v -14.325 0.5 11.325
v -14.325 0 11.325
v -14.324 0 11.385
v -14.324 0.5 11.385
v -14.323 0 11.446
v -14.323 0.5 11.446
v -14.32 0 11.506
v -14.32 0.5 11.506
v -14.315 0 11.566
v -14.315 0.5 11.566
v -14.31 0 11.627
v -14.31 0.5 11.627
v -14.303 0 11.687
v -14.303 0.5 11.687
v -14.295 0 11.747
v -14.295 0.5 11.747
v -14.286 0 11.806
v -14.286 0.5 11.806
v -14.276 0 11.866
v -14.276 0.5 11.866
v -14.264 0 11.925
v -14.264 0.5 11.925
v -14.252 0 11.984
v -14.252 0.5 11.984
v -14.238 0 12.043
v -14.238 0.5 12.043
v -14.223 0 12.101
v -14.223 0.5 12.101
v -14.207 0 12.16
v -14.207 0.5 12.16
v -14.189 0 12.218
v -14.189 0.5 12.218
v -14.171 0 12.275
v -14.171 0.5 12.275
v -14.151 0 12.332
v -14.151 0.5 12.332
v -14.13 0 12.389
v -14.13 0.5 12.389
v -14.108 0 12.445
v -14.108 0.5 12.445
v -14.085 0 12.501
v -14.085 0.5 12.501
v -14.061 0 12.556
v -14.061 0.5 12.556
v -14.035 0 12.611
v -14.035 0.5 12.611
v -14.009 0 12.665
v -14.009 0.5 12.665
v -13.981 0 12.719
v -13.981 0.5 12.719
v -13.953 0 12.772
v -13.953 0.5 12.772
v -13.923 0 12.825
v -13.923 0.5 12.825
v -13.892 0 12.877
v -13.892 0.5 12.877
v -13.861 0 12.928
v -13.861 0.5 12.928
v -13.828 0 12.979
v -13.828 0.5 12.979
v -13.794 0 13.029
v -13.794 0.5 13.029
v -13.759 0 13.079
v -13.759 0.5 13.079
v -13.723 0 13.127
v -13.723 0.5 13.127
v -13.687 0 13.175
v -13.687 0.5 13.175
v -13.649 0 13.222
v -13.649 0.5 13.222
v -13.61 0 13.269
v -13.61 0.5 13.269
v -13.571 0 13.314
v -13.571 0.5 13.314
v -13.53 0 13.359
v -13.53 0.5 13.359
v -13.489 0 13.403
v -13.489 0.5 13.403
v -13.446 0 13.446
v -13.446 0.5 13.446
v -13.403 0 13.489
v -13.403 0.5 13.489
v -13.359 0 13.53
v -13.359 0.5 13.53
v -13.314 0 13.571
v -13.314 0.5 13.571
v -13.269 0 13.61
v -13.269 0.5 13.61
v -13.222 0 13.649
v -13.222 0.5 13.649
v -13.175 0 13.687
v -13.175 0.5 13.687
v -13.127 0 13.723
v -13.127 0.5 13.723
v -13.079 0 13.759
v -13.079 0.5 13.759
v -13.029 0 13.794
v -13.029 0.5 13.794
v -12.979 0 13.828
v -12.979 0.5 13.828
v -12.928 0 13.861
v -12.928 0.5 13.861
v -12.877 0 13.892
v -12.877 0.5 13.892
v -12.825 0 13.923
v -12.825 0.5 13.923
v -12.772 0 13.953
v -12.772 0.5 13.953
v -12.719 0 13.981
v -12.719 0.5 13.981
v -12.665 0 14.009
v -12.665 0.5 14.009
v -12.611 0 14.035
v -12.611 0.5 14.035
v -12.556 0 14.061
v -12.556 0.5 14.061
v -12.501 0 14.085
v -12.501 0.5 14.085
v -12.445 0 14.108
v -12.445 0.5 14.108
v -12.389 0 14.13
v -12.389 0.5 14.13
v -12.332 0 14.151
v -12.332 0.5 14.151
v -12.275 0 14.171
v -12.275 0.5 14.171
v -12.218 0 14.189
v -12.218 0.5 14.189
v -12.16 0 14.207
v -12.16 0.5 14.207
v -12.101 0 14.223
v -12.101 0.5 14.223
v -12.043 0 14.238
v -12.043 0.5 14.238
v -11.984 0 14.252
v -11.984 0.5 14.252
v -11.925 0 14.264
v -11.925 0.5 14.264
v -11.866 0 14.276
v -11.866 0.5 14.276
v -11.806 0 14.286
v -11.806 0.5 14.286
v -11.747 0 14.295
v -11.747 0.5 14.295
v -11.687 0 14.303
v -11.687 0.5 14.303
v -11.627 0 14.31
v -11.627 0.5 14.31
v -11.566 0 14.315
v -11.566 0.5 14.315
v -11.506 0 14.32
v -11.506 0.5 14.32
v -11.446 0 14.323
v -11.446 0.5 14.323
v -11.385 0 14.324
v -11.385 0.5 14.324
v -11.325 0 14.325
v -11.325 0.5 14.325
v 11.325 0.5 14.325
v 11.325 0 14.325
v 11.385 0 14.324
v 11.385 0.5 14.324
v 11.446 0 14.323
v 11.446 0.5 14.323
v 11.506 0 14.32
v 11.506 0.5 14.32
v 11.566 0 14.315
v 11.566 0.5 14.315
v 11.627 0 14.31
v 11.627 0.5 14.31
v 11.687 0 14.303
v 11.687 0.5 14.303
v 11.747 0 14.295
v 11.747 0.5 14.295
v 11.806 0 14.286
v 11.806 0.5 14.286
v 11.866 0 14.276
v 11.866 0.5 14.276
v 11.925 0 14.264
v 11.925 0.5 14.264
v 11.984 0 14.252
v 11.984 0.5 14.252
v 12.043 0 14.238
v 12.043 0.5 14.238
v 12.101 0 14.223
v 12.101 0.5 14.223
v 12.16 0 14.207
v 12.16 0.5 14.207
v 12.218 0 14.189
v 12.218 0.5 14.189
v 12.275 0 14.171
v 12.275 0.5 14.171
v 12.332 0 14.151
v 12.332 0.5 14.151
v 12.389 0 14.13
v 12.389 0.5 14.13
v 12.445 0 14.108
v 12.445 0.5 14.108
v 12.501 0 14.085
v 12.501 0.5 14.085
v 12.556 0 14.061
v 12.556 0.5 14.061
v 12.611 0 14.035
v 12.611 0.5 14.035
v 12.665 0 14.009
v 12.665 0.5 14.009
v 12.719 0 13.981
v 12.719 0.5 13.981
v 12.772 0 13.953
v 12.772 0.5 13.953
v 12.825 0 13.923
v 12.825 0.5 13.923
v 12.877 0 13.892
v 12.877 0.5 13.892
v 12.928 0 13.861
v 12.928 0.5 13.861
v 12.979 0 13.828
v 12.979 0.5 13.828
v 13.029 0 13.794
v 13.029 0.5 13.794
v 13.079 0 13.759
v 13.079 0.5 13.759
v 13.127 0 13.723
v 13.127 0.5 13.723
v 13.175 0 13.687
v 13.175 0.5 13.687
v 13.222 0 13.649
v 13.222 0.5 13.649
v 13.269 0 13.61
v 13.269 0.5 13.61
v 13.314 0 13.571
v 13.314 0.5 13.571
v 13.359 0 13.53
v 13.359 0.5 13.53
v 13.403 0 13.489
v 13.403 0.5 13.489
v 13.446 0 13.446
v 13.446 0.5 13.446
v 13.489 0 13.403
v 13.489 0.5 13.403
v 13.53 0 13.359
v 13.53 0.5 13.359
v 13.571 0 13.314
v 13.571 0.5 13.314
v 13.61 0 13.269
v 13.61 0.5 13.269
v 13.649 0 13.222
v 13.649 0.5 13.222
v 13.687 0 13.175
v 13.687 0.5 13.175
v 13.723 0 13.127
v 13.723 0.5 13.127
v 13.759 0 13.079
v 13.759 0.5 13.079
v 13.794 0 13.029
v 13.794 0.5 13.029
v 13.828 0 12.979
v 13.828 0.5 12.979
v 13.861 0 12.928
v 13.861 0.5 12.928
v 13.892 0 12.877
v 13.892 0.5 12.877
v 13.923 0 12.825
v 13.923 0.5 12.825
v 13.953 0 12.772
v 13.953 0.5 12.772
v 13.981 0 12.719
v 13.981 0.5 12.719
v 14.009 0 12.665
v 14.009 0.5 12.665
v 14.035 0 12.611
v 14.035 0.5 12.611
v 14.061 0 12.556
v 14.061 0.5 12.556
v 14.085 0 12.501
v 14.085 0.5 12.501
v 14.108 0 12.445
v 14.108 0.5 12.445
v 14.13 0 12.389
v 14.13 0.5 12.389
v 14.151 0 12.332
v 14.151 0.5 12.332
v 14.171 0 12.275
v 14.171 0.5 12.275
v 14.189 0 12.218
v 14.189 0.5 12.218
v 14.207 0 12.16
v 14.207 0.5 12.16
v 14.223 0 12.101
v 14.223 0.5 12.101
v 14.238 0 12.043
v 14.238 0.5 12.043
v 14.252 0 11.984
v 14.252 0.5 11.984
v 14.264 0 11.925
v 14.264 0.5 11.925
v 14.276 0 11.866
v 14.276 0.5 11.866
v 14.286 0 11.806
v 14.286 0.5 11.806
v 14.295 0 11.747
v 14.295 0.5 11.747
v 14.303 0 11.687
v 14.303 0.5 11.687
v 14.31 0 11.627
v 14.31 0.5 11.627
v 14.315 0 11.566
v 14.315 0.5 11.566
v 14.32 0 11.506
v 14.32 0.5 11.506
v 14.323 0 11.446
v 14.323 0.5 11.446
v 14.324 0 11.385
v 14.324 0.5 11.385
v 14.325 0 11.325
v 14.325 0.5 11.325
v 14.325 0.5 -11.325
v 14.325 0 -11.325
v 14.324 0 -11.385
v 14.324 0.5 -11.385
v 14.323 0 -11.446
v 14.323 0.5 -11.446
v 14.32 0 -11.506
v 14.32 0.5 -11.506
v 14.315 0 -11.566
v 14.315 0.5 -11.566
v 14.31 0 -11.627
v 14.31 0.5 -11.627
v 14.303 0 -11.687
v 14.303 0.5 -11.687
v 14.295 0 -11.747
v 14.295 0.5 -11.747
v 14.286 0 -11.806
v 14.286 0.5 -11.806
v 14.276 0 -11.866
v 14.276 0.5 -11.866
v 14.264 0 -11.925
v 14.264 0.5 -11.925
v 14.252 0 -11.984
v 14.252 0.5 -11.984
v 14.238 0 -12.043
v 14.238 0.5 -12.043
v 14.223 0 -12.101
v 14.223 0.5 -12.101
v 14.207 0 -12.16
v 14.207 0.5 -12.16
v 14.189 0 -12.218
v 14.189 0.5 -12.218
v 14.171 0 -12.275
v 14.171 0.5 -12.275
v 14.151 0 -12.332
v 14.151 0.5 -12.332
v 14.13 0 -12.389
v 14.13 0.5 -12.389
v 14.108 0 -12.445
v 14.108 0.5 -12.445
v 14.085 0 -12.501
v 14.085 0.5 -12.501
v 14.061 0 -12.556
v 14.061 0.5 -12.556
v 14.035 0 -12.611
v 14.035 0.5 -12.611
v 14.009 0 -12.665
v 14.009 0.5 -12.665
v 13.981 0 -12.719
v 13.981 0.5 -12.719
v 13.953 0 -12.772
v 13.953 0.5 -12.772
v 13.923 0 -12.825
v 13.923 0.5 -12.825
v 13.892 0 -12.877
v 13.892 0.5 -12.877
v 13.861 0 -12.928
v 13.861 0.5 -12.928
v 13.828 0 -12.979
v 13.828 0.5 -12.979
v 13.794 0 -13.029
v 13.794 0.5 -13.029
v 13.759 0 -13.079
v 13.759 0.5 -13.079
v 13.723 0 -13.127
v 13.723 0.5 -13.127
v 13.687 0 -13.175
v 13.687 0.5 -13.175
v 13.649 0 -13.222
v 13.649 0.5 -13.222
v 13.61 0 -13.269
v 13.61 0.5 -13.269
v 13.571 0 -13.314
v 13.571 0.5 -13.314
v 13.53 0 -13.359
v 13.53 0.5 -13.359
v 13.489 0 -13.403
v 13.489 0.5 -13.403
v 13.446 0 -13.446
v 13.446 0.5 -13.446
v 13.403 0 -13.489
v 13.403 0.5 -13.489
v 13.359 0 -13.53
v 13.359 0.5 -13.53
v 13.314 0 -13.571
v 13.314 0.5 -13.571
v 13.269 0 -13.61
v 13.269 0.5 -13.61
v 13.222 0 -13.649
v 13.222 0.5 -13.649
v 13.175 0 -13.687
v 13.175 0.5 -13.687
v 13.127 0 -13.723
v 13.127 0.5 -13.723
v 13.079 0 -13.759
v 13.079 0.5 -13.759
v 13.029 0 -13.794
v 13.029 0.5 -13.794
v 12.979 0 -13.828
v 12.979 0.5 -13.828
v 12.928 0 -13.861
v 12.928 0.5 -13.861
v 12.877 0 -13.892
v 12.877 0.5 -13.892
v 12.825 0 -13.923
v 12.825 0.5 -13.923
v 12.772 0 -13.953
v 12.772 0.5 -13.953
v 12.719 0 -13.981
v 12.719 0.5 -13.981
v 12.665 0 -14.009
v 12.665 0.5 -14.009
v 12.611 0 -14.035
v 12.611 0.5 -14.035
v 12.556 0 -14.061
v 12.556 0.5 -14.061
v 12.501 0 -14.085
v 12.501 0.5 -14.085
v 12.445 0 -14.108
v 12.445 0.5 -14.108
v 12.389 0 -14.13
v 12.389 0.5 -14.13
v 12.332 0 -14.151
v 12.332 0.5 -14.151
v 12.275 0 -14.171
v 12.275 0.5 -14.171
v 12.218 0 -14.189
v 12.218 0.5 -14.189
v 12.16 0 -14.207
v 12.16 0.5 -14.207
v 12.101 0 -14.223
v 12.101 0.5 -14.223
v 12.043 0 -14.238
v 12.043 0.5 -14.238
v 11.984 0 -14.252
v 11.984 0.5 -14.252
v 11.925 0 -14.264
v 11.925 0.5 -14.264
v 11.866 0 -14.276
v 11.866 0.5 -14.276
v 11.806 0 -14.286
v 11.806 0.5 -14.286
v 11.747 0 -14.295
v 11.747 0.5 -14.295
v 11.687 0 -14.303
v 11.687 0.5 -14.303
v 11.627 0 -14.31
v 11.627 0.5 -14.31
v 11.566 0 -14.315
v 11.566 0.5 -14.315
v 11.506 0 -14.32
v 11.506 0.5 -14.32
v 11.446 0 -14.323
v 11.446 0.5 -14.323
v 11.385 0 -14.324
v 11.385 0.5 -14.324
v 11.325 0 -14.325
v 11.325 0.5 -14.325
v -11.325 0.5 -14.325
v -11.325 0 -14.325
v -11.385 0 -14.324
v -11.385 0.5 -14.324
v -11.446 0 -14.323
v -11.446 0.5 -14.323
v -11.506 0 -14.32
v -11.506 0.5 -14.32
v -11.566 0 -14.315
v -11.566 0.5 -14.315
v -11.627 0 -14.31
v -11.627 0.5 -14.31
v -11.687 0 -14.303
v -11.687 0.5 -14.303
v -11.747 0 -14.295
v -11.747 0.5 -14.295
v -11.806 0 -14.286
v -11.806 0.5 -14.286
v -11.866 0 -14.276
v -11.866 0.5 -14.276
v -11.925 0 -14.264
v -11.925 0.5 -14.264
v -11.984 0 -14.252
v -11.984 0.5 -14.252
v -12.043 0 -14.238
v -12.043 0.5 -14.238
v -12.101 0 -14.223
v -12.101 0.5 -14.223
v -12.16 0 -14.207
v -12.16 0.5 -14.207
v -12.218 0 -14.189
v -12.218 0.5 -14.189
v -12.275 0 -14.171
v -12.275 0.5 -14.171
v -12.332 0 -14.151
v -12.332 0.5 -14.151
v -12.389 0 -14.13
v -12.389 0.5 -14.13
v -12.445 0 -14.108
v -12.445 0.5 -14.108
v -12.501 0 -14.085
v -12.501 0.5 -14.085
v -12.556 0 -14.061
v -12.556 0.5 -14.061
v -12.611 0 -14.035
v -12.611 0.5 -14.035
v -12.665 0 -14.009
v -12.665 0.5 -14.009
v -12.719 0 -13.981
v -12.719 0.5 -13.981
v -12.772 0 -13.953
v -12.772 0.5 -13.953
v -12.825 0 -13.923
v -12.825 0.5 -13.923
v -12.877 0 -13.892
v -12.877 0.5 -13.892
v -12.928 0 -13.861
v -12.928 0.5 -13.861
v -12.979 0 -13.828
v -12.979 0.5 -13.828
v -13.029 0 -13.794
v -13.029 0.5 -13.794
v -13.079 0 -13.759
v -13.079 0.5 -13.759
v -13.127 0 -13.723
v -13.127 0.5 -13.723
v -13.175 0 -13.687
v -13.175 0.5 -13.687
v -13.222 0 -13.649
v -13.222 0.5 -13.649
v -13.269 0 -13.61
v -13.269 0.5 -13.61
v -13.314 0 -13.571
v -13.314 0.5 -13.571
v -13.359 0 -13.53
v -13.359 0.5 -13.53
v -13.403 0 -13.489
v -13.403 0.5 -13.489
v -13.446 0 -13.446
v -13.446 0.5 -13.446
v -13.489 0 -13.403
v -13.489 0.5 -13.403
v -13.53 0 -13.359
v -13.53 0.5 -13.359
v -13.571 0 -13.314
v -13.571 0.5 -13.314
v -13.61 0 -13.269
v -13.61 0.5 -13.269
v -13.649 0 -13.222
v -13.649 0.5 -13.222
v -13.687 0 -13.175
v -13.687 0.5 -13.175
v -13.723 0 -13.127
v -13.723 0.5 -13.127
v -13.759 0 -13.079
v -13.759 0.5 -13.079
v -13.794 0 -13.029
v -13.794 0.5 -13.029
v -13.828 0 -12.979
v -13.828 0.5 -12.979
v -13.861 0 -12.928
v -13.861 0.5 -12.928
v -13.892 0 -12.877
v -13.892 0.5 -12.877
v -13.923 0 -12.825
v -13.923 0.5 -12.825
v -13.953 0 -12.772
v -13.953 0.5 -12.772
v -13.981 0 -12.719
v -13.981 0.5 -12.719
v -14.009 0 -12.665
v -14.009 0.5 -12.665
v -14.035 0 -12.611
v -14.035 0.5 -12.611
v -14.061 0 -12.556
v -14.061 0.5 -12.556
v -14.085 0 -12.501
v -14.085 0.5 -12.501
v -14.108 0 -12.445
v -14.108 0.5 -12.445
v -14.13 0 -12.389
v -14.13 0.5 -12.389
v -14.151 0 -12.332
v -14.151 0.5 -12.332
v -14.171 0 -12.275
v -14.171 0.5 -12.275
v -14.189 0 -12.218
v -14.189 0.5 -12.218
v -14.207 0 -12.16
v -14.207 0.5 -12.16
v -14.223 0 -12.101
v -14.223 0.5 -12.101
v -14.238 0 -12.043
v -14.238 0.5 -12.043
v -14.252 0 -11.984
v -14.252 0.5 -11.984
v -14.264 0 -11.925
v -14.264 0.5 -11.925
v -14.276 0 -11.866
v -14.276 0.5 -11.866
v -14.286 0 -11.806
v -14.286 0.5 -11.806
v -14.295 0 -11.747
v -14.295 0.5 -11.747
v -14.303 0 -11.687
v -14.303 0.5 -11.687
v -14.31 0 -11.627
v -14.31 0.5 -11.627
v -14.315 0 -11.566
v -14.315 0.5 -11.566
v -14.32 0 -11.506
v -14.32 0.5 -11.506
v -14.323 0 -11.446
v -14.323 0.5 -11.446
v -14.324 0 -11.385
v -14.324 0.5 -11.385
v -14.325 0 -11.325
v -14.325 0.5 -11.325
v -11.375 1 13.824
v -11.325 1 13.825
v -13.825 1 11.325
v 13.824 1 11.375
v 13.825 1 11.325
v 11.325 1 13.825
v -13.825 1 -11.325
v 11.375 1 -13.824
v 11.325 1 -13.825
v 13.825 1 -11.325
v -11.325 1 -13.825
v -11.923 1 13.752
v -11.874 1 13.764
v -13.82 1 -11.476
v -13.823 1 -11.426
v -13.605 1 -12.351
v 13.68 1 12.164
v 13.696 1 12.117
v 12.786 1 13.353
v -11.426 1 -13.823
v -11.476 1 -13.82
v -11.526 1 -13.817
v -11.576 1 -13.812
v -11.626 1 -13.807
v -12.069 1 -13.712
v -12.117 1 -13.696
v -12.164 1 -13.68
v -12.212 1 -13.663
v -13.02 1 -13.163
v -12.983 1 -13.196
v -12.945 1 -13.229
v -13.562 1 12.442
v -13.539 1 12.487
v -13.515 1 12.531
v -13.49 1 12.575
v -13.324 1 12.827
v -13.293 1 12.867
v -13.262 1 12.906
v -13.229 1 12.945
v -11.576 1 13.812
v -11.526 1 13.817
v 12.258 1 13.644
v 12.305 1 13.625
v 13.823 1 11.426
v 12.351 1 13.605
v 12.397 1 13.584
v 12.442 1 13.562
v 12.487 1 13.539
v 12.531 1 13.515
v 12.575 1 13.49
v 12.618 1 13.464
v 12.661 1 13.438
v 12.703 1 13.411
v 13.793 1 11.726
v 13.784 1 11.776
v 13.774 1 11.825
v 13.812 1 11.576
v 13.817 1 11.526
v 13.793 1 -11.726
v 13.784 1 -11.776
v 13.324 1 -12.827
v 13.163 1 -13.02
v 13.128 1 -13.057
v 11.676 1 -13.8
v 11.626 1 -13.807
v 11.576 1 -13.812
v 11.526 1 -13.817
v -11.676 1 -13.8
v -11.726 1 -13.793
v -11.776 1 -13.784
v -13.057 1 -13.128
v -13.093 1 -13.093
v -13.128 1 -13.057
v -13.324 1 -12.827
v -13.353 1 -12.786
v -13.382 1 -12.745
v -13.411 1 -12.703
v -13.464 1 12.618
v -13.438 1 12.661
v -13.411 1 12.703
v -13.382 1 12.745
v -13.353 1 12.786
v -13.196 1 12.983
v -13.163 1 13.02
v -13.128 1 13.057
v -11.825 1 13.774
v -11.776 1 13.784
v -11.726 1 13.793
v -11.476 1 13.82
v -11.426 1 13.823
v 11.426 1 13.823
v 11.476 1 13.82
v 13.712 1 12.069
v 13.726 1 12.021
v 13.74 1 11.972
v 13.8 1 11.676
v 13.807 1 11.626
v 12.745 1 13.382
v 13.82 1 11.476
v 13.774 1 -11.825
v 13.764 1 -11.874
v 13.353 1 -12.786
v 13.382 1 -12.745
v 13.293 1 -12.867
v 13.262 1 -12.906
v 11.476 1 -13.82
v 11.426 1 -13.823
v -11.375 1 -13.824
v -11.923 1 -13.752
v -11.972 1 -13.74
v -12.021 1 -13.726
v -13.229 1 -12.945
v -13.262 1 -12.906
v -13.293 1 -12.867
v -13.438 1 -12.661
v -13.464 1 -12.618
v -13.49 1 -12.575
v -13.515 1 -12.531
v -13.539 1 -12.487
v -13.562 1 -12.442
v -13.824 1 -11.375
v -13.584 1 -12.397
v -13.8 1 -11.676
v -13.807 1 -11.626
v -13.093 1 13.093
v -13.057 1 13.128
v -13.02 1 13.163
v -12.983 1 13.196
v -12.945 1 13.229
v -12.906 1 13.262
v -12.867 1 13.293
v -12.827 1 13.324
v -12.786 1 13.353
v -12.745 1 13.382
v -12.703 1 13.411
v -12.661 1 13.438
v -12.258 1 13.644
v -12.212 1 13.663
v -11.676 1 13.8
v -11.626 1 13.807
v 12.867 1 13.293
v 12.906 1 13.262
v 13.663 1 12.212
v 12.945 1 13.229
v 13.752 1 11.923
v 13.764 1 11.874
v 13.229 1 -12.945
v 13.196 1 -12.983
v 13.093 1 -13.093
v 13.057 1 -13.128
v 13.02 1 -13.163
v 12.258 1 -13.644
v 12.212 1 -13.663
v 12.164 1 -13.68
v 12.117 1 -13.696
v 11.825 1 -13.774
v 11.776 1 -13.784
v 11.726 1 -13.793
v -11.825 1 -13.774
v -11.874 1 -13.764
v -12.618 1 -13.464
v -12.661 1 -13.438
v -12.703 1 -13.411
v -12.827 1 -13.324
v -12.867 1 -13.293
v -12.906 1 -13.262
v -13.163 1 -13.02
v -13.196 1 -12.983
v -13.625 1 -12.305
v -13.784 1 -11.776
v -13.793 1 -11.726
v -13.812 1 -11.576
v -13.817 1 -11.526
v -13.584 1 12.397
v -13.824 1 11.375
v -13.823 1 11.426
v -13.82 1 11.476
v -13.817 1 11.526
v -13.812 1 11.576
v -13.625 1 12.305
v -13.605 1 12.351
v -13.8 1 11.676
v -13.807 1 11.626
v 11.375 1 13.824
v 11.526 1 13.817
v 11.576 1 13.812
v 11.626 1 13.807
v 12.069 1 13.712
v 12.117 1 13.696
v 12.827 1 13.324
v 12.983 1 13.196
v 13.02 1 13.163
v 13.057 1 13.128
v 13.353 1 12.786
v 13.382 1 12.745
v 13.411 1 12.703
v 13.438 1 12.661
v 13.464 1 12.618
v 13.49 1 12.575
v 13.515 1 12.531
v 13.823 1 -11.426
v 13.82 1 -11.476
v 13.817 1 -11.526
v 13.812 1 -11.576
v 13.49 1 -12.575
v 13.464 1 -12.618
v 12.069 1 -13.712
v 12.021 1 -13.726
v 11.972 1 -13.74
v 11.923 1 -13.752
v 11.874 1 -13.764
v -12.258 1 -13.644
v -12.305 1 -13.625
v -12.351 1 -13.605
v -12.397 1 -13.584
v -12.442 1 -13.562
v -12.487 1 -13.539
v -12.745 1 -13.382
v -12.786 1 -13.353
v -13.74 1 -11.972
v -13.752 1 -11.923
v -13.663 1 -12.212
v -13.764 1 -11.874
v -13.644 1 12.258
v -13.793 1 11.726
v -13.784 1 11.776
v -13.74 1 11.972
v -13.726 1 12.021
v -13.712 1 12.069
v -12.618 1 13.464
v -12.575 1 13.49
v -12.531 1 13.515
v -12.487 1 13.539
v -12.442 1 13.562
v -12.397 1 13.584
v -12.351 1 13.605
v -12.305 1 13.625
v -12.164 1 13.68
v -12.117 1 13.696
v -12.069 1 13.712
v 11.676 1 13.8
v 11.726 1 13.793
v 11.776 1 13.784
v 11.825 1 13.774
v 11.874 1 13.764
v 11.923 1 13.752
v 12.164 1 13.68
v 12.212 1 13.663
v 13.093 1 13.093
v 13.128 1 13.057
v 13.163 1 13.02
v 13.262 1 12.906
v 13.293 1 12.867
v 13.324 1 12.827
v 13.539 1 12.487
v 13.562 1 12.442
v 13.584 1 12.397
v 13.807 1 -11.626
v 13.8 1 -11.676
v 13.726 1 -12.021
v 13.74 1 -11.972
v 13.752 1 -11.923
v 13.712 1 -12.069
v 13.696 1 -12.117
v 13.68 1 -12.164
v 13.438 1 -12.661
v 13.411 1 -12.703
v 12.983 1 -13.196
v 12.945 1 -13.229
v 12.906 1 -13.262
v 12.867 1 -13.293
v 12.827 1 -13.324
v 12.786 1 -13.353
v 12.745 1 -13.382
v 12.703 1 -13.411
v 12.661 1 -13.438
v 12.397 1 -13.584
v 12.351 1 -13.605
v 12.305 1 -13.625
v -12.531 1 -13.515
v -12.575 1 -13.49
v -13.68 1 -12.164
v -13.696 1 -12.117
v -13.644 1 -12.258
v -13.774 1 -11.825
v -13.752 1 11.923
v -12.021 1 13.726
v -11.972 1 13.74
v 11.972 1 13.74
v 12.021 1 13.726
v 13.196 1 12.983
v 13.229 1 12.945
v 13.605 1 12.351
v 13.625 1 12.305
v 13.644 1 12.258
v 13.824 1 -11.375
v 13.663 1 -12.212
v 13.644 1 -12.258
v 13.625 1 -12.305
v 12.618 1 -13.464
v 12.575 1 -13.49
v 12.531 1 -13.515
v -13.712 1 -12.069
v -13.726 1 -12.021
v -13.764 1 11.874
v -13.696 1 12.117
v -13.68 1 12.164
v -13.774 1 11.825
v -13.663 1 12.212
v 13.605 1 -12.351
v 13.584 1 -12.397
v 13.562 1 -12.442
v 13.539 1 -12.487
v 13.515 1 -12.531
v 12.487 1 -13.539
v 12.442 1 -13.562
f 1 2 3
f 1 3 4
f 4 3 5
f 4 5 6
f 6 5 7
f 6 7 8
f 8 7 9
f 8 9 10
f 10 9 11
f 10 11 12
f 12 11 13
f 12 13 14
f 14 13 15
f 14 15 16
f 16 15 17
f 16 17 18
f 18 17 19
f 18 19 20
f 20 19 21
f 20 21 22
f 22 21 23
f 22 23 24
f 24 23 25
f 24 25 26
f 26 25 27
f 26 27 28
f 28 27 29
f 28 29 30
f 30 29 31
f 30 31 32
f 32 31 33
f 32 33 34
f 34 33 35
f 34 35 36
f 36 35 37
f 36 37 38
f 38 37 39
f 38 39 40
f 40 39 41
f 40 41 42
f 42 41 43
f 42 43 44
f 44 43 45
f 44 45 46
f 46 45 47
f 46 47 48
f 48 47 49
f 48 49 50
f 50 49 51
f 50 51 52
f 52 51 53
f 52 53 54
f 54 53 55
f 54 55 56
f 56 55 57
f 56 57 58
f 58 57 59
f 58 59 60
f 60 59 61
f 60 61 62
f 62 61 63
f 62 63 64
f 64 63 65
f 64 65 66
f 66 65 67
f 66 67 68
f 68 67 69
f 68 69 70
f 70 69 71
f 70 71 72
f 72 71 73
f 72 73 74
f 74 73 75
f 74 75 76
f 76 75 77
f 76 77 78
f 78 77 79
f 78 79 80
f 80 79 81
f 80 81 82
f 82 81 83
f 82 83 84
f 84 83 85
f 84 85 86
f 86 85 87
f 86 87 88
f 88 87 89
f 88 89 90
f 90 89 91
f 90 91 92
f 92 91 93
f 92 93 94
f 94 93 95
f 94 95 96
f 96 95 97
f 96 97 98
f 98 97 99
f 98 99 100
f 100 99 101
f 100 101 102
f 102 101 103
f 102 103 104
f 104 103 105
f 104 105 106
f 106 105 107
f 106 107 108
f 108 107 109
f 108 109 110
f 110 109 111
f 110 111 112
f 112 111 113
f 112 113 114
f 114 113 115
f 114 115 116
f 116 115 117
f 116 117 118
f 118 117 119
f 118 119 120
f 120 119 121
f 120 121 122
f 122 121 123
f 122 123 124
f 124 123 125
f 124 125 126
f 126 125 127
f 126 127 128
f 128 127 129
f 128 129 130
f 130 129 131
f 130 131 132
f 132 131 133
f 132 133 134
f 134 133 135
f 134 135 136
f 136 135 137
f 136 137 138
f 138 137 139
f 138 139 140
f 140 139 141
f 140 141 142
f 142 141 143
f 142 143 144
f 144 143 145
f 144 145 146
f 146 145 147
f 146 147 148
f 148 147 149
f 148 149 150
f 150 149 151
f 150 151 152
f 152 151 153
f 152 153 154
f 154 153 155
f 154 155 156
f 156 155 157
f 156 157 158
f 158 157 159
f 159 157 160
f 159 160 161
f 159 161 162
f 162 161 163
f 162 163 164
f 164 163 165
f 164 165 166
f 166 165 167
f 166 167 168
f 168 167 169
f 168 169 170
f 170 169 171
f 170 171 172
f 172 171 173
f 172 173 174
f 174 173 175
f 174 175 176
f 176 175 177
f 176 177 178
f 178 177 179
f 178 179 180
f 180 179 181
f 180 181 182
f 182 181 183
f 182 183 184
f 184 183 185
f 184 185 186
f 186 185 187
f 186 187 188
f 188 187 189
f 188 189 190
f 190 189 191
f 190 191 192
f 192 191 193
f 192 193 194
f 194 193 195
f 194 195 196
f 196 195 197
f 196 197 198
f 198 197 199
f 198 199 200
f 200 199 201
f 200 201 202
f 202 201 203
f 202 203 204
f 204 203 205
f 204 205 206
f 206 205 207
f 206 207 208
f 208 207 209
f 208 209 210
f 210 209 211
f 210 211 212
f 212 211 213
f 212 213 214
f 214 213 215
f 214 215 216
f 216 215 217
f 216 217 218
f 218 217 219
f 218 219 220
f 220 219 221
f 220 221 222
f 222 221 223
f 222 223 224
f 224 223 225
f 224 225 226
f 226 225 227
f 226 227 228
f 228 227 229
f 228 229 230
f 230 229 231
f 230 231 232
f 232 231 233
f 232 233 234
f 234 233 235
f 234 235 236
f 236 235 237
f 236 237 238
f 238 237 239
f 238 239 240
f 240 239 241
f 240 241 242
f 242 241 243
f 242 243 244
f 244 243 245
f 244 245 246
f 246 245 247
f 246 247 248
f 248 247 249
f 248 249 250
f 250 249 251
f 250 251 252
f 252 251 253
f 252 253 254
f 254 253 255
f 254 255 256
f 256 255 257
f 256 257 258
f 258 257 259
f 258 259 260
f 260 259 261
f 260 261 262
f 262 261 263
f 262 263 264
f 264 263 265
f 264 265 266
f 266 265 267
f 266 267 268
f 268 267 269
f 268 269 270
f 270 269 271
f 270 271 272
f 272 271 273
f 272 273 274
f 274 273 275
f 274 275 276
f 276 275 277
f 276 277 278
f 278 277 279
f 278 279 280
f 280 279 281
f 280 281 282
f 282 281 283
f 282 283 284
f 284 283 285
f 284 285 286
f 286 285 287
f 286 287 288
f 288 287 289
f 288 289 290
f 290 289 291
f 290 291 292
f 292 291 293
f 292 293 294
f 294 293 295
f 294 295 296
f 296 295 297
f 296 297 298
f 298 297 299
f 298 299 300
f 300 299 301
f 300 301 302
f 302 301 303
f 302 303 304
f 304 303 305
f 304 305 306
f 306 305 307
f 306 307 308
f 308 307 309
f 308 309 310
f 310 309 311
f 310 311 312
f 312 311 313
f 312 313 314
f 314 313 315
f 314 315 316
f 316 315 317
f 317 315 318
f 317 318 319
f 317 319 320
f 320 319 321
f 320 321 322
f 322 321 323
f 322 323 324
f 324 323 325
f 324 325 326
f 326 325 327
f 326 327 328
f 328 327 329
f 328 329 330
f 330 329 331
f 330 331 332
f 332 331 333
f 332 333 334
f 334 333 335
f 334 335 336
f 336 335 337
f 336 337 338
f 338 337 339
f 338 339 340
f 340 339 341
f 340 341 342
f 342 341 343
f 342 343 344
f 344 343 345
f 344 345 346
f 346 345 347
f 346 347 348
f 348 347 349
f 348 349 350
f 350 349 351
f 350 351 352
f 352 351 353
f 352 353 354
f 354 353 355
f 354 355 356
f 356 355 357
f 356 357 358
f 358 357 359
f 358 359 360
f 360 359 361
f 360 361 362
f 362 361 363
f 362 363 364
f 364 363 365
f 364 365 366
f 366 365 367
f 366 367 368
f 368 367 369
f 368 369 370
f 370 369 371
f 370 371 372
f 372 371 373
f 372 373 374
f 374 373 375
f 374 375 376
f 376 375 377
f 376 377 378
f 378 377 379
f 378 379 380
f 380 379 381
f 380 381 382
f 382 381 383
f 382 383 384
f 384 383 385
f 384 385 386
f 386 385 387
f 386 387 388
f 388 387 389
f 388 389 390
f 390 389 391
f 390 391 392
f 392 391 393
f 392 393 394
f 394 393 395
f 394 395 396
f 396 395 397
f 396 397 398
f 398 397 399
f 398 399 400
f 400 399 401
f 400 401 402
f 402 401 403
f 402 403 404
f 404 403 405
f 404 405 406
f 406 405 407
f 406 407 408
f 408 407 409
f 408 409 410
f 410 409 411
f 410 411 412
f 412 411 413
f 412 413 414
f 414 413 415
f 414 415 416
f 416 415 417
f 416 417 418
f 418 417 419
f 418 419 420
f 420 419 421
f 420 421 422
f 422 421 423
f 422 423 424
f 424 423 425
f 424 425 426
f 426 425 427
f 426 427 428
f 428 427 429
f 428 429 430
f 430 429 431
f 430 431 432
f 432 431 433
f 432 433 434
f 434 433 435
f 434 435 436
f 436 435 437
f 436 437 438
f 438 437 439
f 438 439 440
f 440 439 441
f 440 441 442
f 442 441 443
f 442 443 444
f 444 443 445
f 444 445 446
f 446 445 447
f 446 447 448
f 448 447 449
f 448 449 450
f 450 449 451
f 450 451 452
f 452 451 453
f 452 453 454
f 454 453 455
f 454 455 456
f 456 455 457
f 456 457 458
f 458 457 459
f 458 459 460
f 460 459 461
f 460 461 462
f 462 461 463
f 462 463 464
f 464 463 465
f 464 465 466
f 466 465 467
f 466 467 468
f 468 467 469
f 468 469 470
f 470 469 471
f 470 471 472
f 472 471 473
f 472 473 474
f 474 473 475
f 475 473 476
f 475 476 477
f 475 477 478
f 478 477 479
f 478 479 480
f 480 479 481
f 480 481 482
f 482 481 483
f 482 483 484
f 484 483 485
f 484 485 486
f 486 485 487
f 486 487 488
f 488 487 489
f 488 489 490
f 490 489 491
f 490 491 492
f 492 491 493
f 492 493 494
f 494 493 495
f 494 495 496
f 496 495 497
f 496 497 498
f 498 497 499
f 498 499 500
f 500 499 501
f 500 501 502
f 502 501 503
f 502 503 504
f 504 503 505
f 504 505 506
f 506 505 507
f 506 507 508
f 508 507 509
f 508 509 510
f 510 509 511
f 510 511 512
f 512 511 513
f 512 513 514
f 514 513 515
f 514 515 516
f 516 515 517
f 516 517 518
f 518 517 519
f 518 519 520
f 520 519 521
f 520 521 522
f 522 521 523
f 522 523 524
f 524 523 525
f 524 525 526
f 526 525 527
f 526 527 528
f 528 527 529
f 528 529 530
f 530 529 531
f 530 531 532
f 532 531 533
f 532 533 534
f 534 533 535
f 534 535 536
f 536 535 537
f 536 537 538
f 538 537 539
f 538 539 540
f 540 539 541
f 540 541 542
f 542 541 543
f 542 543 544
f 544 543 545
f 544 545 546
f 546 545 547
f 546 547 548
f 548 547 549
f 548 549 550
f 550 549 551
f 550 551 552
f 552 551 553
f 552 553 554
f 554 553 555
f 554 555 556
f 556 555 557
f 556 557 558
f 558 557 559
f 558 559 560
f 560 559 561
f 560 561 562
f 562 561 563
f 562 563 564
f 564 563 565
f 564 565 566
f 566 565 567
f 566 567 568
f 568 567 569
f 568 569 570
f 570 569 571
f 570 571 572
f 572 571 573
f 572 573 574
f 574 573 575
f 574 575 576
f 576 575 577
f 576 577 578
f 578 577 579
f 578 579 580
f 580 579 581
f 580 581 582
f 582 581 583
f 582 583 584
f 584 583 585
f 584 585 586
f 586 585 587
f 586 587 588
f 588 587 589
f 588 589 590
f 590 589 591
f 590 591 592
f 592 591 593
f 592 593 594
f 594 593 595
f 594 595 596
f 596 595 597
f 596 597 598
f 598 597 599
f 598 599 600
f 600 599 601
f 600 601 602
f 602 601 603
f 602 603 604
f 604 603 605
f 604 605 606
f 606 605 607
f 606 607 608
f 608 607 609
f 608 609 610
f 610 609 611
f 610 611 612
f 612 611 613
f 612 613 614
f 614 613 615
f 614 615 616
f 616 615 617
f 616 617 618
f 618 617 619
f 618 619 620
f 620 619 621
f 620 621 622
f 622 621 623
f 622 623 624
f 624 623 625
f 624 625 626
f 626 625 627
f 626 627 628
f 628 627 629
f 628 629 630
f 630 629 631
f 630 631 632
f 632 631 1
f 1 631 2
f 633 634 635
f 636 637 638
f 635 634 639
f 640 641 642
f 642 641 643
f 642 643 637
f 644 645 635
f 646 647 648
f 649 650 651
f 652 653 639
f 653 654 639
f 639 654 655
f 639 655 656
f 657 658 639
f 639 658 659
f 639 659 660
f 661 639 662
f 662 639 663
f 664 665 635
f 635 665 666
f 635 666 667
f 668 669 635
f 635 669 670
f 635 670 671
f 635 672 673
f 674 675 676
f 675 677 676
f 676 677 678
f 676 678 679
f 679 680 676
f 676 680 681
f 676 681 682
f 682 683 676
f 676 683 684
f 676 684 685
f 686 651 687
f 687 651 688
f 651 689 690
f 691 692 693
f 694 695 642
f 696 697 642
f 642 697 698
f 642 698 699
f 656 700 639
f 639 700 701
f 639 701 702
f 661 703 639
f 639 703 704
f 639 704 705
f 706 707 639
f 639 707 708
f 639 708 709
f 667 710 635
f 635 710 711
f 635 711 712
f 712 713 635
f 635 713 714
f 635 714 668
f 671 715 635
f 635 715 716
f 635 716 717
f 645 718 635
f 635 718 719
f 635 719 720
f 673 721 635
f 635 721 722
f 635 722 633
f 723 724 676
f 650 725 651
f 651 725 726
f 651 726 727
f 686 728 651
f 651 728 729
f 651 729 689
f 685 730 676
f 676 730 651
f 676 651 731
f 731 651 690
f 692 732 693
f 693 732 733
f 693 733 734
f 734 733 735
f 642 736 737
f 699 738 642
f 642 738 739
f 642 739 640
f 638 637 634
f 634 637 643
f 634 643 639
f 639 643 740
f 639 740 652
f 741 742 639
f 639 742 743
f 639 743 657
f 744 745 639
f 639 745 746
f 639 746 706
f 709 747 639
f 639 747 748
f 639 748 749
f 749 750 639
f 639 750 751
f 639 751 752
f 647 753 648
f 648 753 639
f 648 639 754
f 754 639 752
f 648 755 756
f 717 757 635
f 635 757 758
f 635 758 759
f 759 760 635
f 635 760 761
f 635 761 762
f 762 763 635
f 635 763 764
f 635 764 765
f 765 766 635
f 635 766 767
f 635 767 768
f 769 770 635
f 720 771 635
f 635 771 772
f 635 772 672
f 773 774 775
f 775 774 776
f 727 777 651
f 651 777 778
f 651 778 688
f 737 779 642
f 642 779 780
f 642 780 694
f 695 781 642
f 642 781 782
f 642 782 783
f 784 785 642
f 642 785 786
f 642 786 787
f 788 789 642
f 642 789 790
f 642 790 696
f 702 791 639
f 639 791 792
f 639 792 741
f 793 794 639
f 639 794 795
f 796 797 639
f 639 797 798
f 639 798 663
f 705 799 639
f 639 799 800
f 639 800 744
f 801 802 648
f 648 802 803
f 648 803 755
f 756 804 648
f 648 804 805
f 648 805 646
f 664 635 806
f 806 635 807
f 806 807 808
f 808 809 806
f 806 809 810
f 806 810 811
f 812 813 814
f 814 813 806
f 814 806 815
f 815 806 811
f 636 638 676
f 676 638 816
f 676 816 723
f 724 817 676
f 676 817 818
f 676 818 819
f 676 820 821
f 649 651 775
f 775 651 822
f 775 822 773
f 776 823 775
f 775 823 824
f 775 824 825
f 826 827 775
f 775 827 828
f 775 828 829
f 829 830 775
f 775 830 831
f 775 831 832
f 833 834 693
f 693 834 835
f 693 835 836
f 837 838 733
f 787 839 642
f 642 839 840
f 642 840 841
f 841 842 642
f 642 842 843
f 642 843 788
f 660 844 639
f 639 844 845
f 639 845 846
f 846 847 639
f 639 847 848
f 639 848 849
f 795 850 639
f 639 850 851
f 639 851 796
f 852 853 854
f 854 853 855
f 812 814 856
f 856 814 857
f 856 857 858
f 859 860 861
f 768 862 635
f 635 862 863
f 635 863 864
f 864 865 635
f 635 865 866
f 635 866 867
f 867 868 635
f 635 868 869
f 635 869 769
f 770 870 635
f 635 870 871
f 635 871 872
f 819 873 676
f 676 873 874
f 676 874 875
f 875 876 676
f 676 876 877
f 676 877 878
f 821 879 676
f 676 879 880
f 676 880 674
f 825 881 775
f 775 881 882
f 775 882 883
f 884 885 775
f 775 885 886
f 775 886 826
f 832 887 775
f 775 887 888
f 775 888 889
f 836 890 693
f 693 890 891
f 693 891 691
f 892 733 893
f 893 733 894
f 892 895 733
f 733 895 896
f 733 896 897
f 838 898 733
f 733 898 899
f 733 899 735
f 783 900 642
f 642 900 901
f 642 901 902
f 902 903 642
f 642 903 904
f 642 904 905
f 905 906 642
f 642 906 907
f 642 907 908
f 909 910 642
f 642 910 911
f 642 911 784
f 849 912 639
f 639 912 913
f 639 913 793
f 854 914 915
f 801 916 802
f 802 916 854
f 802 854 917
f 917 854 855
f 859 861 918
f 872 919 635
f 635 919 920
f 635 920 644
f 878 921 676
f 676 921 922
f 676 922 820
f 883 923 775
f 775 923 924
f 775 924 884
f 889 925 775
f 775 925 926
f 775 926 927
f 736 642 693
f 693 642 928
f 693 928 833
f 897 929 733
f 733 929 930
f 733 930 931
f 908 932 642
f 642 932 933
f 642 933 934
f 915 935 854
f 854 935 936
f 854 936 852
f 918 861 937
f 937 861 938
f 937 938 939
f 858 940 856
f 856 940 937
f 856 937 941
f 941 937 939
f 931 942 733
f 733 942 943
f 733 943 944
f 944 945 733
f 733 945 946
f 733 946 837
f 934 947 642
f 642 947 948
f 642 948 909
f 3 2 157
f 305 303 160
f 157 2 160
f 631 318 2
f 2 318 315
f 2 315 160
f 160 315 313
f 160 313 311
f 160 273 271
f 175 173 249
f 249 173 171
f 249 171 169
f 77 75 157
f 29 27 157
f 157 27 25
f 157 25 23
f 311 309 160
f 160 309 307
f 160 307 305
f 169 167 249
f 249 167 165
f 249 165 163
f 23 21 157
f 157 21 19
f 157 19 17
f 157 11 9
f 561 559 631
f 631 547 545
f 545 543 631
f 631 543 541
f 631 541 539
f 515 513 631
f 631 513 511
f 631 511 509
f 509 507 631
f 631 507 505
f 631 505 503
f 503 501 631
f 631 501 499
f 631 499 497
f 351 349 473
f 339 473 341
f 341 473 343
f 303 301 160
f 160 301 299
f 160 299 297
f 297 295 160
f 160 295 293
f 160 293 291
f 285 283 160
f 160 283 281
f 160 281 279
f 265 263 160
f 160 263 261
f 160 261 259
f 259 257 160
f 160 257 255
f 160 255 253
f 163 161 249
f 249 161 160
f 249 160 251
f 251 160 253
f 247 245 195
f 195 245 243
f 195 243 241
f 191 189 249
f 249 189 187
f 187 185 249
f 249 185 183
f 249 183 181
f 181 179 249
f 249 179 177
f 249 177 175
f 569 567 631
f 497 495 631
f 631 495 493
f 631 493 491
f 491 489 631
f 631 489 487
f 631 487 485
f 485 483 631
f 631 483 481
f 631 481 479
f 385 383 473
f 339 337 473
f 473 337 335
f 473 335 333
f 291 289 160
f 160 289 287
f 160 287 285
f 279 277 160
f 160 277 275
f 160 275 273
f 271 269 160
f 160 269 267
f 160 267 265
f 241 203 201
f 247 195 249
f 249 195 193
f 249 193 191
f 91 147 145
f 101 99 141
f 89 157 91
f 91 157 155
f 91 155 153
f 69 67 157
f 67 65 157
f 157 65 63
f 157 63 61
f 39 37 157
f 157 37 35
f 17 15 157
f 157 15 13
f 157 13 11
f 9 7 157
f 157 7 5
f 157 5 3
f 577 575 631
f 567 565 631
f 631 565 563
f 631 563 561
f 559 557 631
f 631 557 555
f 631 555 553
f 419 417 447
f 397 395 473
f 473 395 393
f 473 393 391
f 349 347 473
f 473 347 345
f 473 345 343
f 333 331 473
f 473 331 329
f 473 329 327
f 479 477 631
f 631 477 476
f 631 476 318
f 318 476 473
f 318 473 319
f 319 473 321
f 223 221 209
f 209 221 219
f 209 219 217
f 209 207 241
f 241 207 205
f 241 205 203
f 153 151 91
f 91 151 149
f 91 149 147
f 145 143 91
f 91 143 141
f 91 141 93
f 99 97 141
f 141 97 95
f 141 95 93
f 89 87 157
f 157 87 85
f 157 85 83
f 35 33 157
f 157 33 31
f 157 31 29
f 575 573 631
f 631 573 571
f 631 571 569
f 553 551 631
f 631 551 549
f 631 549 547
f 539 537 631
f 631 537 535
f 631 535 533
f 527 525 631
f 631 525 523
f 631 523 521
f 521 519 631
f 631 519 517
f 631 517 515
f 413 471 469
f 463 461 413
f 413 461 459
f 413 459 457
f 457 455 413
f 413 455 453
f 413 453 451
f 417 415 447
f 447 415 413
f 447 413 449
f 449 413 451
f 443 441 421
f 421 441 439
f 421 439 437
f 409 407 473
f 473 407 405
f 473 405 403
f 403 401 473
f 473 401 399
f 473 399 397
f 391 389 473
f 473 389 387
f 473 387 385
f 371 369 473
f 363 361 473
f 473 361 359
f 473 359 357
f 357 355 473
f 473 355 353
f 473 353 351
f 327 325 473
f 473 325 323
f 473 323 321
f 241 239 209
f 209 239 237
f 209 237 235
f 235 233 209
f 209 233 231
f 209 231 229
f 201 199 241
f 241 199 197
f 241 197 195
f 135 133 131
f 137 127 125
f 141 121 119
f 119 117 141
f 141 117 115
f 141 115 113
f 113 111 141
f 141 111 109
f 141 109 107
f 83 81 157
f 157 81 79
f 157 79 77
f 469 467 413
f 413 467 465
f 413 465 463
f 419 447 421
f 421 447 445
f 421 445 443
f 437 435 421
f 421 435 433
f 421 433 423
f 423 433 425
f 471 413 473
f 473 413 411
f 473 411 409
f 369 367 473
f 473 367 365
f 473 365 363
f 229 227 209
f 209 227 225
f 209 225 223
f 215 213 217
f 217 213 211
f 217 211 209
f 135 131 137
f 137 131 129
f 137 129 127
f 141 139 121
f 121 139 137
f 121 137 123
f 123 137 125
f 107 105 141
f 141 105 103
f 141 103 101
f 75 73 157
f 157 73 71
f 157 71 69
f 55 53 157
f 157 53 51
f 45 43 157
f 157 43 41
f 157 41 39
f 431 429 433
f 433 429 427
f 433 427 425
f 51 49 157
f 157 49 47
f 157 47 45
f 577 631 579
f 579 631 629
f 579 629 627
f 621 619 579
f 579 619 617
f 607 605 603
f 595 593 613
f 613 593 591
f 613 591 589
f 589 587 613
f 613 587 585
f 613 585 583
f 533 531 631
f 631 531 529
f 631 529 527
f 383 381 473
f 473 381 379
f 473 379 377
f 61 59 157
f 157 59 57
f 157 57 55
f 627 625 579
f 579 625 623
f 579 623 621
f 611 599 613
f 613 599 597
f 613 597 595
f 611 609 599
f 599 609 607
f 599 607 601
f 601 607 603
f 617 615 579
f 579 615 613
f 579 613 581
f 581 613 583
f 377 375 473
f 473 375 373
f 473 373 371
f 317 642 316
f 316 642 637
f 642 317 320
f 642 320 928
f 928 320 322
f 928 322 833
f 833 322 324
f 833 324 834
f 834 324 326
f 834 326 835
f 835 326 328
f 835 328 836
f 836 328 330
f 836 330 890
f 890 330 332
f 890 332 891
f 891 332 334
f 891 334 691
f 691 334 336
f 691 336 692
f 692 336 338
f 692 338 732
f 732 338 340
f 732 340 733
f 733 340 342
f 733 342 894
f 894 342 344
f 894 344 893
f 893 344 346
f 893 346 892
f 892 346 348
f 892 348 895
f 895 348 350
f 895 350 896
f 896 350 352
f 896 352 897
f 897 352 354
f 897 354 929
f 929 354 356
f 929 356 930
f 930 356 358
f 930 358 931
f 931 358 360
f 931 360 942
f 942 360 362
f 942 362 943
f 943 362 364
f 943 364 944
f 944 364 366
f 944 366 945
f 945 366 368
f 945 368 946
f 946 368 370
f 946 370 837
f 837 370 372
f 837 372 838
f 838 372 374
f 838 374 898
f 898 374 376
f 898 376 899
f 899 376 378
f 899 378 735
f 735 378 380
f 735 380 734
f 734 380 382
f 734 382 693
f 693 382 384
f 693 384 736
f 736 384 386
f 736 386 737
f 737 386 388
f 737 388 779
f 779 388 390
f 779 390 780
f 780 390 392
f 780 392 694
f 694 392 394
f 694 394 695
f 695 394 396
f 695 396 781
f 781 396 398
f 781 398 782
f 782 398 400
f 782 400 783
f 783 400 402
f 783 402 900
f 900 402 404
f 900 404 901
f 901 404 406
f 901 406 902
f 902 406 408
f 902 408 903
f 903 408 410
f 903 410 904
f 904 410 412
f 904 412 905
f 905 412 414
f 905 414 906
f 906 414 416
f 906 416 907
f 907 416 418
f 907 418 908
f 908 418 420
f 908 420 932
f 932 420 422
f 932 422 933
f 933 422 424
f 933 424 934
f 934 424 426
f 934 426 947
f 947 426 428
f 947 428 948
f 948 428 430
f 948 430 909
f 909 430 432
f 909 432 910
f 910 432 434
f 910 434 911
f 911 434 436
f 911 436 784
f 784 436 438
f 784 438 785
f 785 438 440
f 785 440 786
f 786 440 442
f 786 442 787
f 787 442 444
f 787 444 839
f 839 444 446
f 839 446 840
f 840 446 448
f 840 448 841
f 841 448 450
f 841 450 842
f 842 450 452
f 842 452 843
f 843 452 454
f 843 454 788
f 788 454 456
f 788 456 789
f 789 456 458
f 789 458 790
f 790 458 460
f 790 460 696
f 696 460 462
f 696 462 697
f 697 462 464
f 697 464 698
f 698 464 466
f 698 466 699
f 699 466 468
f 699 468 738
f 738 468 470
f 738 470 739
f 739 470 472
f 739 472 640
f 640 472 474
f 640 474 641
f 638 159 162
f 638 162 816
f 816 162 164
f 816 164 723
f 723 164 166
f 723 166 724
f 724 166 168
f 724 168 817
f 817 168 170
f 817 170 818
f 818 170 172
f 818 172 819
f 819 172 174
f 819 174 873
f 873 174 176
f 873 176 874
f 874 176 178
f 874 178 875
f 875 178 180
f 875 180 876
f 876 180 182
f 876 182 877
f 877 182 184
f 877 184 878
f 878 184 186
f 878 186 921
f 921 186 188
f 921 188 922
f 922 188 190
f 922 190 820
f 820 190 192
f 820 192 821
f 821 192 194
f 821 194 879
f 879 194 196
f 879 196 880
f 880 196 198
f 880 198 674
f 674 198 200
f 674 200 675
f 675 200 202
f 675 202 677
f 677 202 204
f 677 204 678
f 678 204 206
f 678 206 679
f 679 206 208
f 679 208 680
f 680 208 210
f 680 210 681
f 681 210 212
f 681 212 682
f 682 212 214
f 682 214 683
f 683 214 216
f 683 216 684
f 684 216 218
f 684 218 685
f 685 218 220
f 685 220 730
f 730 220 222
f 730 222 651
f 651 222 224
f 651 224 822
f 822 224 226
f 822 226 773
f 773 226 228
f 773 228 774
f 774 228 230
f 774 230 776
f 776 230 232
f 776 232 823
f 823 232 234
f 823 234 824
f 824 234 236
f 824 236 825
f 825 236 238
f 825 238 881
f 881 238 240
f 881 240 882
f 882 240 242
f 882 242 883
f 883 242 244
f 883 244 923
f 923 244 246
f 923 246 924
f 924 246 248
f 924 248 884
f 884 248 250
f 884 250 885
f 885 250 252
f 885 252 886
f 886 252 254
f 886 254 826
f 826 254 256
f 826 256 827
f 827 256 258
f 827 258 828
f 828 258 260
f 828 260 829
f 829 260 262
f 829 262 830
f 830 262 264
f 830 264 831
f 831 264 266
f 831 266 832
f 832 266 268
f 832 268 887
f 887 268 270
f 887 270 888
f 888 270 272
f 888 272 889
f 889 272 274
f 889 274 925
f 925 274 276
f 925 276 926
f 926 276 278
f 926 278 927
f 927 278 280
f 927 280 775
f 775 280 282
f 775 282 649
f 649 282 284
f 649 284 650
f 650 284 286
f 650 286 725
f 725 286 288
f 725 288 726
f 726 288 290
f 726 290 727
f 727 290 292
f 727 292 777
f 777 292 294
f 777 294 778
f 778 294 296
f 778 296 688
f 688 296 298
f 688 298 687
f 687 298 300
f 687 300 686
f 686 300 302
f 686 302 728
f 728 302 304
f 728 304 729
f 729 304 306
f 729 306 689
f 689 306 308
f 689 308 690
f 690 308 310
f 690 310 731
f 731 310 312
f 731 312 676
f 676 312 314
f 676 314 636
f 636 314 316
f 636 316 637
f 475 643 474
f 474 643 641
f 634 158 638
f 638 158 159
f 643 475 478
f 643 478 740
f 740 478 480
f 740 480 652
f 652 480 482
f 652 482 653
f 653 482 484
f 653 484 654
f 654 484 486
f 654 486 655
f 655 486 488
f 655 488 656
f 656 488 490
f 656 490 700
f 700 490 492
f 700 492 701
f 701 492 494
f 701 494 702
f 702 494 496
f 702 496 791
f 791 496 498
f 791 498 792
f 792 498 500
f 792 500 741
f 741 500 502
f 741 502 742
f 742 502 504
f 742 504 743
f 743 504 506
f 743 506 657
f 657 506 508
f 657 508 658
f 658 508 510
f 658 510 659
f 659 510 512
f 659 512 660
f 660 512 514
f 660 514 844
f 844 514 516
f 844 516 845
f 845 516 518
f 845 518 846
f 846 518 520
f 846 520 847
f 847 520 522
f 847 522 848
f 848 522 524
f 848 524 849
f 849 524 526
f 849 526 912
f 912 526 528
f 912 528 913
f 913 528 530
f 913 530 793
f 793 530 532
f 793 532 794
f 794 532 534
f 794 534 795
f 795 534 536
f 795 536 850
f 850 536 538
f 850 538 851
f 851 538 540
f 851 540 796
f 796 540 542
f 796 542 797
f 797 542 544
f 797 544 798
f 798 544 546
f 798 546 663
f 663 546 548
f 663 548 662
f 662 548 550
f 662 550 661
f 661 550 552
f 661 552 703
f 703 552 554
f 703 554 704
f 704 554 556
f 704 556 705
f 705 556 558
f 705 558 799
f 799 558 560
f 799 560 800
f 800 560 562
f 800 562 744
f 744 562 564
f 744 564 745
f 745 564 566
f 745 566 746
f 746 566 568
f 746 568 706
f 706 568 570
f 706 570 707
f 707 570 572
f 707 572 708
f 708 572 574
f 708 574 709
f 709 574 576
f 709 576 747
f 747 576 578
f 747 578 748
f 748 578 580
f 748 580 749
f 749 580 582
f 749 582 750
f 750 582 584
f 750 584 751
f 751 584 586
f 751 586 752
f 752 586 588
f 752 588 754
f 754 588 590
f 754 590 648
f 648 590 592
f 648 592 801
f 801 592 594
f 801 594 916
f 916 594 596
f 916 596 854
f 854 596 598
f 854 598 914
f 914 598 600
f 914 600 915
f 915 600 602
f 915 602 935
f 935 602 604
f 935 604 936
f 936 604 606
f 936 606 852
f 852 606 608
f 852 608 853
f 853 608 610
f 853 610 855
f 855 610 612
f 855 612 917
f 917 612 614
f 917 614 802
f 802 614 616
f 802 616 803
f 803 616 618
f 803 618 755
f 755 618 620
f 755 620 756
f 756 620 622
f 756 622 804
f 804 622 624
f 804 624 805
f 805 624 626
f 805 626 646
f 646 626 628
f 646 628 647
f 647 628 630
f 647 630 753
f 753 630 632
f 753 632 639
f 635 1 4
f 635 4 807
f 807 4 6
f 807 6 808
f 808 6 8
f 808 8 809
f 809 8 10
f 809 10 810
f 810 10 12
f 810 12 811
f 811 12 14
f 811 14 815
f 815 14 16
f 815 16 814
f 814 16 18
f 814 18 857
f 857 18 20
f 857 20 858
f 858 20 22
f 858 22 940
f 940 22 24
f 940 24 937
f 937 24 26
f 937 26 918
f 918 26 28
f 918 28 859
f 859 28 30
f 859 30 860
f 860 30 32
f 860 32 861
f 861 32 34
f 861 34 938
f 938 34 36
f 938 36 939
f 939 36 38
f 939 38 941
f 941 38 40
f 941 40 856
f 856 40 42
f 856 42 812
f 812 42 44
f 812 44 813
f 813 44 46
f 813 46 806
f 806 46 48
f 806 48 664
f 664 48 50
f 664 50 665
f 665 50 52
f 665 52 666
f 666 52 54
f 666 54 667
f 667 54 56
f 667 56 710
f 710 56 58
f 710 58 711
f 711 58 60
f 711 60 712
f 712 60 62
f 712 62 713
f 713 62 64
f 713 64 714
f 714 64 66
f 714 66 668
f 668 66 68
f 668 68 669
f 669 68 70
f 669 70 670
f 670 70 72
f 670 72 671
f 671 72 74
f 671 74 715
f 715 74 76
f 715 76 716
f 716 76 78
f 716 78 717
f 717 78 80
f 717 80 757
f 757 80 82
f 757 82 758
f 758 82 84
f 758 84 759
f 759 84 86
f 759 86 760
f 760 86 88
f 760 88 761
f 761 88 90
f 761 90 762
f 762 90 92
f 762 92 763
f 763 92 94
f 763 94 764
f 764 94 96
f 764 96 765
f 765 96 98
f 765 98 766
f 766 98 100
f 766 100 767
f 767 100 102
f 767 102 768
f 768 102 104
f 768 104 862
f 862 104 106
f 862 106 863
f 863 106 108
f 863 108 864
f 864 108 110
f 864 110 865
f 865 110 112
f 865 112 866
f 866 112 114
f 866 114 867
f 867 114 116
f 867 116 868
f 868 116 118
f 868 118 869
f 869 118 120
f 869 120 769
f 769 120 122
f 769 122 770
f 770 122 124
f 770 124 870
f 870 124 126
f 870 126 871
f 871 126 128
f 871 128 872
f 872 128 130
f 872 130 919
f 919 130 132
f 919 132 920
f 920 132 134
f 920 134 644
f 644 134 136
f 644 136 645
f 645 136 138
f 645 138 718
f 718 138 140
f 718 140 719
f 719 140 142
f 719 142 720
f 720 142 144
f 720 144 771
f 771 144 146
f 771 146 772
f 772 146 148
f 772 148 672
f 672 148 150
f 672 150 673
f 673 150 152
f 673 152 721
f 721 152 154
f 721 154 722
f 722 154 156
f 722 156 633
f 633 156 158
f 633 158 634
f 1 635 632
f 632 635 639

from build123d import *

# Parameters (mm, degrees)
BOSS_EXTRUDE1_DEPTH = 1
CHAMFER1_SIZE       = 0.5


with BuildPart() as part:
    # Sketch1 → Boss-Extrude1 (new body)
    with BuildSketch(Plane(origin=(0, 0, 0), x_dir=(1, 0, 0), z_dir=(0, 1, 0))):
        with BuildLine():
            Line((-11.325, 14.325), (11.325, 14.325))
            ThreePointArc((11.325, 14.325), (13.446320344, 13.446320344), (14.325, 11.325))
            Line((14.325, 11.325), (14.325, -11.325))
            ThreePointArc((14.325, -11.325), (13.446320344, -13.446320344), (11.325, -14.325))
            Line((11.325, -14.325), (-11.325, -14.325))
            ThreePointArc((-11.325, -14.325), (-13.446320344, -13.446320344), (-14.325, -11.325))
            Line((-14.325, -11.325), (-14.325, 11.325))
            ThreePointArc((-14.325, 11.325), (-13.446320344, 13.446320344), (-11.325, 14.325))
        make_face()
    extrude(amount=BOSS_EXTRUDE1_DEPTH)

    # Chamfer1
    chamfer1_edges = [part.edges().sort_by_distance(p)[0] for p in [
        (13.446320344, 1, 13.446320344),
        (14.325, 1, 0),
        (13.446320344, 1, -13.446320344),
        (0, 1, -14.325),
        (-13.446320344, 1, -13.446320344),
        (-14.325, 1, 0),
        (-13.446320344, 1, 13.446320344),
        (0, 1, 14.325),
    ]]
    chamfer(chamfer1_edges, length=CHAMFER1_SIZE)


solid = part.part
